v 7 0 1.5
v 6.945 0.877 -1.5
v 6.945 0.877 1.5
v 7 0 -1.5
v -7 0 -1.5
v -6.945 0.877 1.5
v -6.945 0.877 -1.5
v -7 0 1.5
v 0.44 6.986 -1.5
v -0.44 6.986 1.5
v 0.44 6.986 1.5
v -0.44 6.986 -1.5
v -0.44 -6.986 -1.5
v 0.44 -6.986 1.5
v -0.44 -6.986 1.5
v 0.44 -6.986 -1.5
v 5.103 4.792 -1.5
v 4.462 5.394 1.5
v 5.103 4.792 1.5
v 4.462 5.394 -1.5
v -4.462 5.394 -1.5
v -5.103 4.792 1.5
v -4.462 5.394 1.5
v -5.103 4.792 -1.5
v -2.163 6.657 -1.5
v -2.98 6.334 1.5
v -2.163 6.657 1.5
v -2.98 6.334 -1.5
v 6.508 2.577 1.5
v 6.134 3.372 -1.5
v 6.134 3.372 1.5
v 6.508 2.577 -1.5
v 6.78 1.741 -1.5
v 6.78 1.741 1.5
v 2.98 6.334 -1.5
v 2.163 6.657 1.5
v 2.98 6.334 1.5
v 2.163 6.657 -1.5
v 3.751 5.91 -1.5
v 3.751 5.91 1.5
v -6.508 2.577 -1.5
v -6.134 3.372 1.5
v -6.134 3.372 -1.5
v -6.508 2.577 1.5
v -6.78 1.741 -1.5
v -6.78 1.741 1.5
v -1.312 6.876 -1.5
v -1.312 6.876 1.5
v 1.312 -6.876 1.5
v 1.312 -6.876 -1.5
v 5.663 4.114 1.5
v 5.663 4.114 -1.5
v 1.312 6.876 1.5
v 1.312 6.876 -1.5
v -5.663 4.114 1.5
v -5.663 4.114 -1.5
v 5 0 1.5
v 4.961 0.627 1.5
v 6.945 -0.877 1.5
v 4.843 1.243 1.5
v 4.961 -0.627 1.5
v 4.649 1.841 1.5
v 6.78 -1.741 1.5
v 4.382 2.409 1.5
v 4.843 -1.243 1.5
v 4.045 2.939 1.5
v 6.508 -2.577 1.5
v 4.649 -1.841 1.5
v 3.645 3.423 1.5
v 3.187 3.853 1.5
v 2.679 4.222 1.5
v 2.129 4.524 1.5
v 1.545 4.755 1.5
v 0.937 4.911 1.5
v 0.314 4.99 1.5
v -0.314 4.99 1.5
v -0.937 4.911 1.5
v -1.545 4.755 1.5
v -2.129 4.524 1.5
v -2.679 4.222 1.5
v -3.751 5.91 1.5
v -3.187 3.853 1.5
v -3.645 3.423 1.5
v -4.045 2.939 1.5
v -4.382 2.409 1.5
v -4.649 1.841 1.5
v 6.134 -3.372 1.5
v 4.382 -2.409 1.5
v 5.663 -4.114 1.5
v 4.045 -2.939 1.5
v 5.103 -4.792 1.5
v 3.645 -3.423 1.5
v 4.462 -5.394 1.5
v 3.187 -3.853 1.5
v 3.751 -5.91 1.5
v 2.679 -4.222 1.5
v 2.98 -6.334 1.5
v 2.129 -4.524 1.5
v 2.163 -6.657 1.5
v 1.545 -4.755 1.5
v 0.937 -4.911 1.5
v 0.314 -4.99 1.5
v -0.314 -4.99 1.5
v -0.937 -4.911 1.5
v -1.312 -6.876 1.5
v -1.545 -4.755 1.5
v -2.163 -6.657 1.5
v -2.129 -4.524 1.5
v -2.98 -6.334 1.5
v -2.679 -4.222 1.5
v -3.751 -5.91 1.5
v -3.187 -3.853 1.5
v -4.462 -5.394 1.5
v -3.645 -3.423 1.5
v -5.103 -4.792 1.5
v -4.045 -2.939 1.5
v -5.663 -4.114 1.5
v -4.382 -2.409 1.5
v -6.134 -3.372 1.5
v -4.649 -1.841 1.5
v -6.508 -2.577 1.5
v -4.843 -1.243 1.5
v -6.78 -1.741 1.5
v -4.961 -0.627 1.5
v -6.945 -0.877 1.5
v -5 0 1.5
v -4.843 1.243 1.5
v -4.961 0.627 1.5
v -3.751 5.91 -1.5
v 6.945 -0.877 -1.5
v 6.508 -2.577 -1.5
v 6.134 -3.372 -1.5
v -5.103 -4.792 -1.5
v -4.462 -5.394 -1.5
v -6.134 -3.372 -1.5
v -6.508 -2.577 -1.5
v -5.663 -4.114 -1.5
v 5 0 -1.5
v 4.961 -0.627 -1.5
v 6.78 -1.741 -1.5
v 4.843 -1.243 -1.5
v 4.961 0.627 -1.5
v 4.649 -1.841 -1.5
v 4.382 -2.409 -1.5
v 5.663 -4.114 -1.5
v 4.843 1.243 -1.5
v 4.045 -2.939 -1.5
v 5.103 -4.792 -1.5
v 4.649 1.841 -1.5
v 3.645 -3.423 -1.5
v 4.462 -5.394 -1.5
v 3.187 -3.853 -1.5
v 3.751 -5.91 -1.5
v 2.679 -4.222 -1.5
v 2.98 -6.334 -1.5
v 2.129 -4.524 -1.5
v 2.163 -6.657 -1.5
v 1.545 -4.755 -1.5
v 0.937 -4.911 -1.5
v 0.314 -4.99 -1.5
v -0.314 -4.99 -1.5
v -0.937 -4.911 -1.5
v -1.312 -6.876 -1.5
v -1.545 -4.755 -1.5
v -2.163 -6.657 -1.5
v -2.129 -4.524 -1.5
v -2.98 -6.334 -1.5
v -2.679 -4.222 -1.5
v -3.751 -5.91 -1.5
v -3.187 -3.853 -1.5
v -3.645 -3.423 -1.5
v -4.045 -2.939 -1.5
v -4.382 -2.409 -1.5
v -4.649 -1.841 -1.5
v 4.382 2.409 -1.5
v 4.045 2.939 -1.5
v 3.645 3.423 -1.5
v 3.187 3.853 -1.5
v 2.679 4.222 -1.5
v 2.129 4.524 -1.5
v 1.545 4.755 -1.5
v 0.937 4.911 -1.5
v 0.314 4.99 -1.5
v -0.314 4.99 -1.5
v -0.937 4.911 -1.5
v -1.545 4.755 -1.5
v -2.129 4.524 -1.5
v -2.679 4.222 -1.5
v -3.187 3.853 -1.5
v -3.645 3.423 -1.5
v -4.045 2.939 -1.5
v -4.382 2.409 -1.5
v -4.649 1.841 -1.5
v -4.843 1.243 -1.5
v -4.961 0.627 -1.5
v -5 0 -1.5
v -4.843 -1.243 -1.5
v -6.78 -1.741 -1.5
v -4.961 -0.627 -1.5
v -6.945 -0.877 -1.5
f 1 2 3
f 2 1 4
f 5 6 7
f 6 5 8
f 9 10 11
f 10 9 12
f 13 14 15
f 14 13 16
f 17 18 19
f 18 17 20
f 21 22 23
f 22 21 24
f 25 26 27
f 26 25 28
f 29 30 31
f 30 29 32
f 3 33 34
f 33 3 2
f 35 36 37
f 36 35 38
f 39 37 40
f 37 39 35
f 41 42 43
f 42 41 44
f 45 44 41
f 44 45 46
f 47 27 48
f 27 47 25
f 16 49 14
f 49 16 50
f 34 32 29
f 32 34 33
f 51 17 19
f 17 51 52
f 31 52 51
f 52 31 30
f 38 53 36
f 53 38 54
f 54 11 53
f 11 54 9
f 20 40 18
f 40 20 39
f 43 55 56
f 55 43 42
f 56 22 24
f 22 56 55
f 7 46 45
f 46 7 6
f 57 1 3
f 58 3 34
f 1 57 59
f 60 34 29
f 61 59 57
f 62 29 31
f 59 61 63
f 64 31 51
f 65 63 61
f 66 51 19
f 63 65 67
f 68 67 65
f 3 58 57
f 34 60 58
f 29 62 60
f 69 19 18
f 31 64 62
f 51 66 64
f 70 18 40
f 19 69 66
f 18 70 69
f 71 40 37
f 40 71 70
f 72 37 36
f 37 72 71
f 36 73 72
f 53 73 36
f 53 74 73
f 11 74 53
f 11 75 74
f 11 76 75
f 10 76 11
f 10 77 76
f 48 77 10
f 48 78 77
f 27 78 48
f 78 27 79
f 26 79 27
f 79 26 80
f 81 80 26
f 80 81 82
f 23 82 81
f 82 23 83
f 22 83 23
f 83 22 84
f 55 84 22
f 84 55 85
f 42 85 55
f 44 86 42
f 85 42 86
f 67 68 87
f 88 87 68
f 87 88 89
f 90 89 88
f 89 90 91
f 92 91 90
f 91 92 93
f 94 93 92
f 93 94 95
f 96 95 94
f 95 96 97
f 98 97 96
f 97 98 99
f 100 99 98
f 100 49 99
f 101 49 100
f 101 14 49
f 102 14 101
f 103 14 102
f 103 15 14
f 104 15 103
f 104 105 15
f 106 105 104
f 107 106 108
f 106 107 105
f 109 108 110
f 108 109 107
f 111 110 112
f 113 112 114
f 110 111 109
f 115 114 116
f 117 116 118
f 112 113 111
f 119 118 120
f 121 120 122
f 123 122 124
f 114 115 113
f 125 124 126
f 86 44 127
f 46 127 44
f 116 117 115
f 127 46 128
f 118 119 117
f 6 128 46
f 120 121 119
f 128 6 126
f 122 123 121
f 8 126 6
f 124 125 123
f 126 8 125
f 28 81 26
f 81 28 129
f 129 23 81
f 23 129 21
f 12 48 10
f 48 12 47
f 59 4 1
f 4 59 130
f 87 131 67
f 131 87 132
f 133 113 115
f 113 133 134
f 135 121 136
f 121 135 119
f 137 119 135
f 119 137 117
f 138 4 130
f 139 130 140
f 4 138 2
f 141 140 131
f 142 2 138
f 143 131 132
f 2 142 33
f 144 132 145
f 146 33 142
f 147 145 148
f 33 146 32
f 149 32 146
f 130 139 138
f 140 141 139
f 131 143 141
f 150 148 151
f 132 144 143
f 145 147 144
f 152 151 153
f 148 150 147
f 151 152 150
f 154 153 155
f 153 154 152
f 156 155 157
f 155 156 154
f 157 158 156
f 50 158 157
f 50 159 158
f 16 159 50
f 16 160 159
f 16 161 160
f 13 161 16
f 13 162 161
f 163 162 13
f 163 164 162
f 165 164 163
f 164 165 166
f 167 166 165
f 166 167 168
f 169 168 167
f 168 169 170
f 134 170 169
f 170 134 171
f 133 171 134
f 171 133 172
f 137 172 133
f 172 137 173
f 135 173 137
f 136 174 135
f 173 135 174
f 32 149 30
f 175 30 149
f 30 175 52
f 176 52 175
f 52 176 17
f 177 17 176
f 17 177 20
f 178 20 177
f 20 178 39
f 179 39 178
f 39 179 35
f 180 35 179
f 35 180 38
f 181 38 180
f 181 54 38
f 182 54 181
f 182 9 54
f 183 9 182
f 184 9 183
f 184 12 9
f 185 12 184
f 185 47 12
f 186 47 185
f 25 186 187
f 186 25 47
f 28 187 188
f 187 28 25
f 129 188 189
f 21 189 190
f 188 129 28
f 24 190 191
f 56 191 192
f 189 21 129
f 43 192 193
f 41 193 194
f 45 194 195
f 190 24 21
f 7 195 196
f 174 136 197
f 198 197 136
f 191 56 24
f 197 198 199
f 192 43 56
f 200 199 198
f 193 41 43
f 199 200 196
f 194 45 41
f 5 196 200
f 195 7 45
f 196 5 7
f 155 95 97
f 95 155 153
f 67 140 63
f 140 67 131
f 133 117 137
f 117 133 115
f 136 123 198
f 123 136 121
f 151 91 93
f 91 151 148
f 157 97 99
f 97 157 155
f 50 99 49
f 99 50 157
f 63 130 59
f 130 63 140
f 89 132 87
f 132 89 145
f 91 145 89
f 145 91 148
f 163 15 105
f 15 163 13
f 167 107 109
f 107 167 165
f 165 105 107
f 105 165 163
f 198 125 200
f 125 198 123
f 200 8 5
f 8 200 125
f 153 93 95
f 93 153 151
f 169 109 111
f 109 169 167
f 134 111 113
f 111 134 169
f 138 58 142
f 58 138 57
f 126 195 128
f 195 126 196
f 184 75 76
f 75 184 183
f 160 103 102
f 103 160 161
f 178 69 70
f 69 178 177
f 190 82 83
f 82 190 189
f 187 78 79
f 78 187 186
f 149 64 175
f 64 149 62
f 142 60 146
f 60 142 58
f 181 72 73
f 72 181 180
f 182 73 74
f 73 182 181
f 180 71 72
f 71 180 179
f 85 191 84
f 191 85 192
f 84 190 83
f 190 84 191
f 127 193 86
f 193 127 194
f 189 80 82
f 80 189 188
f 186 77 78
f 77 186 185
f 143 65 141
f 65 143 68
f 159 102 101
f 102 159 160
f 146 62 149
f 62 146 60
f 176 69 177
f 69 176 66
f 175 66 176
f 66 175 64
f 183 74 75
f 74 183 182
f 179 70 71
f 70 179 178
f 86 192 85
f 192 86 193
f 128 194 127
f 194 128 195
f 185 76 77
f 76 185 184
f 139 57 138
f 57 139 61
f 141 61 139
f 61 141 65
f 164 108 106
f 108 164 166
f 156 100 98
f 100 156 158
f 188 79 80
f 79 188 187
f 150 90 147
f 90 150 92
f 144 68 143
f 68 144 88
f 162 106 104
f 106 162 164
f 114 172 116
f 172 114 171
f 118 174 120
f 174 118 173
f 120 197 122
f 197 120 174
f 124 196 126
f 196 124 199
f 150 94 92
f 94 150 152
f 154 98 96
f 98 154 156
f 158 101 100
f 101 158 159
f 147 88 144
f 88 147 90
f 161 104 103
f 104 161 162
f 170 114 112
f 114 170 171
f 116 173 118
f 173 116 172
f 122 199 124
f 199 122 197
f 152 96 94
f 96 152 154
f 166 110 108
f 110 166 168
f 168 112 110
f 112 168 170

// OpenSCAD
$fn = 50;


difference() {
	union() {
		translate(v = [0, 0, -1.5000000000]) {
			cylinder(h = 3, r = 7.0000000000);
		}
	}
	union() {
		translate(v = [0, 0, -100.0000000000]) {
			cylinder(h = 200, r = 5);
		}
	}
}
